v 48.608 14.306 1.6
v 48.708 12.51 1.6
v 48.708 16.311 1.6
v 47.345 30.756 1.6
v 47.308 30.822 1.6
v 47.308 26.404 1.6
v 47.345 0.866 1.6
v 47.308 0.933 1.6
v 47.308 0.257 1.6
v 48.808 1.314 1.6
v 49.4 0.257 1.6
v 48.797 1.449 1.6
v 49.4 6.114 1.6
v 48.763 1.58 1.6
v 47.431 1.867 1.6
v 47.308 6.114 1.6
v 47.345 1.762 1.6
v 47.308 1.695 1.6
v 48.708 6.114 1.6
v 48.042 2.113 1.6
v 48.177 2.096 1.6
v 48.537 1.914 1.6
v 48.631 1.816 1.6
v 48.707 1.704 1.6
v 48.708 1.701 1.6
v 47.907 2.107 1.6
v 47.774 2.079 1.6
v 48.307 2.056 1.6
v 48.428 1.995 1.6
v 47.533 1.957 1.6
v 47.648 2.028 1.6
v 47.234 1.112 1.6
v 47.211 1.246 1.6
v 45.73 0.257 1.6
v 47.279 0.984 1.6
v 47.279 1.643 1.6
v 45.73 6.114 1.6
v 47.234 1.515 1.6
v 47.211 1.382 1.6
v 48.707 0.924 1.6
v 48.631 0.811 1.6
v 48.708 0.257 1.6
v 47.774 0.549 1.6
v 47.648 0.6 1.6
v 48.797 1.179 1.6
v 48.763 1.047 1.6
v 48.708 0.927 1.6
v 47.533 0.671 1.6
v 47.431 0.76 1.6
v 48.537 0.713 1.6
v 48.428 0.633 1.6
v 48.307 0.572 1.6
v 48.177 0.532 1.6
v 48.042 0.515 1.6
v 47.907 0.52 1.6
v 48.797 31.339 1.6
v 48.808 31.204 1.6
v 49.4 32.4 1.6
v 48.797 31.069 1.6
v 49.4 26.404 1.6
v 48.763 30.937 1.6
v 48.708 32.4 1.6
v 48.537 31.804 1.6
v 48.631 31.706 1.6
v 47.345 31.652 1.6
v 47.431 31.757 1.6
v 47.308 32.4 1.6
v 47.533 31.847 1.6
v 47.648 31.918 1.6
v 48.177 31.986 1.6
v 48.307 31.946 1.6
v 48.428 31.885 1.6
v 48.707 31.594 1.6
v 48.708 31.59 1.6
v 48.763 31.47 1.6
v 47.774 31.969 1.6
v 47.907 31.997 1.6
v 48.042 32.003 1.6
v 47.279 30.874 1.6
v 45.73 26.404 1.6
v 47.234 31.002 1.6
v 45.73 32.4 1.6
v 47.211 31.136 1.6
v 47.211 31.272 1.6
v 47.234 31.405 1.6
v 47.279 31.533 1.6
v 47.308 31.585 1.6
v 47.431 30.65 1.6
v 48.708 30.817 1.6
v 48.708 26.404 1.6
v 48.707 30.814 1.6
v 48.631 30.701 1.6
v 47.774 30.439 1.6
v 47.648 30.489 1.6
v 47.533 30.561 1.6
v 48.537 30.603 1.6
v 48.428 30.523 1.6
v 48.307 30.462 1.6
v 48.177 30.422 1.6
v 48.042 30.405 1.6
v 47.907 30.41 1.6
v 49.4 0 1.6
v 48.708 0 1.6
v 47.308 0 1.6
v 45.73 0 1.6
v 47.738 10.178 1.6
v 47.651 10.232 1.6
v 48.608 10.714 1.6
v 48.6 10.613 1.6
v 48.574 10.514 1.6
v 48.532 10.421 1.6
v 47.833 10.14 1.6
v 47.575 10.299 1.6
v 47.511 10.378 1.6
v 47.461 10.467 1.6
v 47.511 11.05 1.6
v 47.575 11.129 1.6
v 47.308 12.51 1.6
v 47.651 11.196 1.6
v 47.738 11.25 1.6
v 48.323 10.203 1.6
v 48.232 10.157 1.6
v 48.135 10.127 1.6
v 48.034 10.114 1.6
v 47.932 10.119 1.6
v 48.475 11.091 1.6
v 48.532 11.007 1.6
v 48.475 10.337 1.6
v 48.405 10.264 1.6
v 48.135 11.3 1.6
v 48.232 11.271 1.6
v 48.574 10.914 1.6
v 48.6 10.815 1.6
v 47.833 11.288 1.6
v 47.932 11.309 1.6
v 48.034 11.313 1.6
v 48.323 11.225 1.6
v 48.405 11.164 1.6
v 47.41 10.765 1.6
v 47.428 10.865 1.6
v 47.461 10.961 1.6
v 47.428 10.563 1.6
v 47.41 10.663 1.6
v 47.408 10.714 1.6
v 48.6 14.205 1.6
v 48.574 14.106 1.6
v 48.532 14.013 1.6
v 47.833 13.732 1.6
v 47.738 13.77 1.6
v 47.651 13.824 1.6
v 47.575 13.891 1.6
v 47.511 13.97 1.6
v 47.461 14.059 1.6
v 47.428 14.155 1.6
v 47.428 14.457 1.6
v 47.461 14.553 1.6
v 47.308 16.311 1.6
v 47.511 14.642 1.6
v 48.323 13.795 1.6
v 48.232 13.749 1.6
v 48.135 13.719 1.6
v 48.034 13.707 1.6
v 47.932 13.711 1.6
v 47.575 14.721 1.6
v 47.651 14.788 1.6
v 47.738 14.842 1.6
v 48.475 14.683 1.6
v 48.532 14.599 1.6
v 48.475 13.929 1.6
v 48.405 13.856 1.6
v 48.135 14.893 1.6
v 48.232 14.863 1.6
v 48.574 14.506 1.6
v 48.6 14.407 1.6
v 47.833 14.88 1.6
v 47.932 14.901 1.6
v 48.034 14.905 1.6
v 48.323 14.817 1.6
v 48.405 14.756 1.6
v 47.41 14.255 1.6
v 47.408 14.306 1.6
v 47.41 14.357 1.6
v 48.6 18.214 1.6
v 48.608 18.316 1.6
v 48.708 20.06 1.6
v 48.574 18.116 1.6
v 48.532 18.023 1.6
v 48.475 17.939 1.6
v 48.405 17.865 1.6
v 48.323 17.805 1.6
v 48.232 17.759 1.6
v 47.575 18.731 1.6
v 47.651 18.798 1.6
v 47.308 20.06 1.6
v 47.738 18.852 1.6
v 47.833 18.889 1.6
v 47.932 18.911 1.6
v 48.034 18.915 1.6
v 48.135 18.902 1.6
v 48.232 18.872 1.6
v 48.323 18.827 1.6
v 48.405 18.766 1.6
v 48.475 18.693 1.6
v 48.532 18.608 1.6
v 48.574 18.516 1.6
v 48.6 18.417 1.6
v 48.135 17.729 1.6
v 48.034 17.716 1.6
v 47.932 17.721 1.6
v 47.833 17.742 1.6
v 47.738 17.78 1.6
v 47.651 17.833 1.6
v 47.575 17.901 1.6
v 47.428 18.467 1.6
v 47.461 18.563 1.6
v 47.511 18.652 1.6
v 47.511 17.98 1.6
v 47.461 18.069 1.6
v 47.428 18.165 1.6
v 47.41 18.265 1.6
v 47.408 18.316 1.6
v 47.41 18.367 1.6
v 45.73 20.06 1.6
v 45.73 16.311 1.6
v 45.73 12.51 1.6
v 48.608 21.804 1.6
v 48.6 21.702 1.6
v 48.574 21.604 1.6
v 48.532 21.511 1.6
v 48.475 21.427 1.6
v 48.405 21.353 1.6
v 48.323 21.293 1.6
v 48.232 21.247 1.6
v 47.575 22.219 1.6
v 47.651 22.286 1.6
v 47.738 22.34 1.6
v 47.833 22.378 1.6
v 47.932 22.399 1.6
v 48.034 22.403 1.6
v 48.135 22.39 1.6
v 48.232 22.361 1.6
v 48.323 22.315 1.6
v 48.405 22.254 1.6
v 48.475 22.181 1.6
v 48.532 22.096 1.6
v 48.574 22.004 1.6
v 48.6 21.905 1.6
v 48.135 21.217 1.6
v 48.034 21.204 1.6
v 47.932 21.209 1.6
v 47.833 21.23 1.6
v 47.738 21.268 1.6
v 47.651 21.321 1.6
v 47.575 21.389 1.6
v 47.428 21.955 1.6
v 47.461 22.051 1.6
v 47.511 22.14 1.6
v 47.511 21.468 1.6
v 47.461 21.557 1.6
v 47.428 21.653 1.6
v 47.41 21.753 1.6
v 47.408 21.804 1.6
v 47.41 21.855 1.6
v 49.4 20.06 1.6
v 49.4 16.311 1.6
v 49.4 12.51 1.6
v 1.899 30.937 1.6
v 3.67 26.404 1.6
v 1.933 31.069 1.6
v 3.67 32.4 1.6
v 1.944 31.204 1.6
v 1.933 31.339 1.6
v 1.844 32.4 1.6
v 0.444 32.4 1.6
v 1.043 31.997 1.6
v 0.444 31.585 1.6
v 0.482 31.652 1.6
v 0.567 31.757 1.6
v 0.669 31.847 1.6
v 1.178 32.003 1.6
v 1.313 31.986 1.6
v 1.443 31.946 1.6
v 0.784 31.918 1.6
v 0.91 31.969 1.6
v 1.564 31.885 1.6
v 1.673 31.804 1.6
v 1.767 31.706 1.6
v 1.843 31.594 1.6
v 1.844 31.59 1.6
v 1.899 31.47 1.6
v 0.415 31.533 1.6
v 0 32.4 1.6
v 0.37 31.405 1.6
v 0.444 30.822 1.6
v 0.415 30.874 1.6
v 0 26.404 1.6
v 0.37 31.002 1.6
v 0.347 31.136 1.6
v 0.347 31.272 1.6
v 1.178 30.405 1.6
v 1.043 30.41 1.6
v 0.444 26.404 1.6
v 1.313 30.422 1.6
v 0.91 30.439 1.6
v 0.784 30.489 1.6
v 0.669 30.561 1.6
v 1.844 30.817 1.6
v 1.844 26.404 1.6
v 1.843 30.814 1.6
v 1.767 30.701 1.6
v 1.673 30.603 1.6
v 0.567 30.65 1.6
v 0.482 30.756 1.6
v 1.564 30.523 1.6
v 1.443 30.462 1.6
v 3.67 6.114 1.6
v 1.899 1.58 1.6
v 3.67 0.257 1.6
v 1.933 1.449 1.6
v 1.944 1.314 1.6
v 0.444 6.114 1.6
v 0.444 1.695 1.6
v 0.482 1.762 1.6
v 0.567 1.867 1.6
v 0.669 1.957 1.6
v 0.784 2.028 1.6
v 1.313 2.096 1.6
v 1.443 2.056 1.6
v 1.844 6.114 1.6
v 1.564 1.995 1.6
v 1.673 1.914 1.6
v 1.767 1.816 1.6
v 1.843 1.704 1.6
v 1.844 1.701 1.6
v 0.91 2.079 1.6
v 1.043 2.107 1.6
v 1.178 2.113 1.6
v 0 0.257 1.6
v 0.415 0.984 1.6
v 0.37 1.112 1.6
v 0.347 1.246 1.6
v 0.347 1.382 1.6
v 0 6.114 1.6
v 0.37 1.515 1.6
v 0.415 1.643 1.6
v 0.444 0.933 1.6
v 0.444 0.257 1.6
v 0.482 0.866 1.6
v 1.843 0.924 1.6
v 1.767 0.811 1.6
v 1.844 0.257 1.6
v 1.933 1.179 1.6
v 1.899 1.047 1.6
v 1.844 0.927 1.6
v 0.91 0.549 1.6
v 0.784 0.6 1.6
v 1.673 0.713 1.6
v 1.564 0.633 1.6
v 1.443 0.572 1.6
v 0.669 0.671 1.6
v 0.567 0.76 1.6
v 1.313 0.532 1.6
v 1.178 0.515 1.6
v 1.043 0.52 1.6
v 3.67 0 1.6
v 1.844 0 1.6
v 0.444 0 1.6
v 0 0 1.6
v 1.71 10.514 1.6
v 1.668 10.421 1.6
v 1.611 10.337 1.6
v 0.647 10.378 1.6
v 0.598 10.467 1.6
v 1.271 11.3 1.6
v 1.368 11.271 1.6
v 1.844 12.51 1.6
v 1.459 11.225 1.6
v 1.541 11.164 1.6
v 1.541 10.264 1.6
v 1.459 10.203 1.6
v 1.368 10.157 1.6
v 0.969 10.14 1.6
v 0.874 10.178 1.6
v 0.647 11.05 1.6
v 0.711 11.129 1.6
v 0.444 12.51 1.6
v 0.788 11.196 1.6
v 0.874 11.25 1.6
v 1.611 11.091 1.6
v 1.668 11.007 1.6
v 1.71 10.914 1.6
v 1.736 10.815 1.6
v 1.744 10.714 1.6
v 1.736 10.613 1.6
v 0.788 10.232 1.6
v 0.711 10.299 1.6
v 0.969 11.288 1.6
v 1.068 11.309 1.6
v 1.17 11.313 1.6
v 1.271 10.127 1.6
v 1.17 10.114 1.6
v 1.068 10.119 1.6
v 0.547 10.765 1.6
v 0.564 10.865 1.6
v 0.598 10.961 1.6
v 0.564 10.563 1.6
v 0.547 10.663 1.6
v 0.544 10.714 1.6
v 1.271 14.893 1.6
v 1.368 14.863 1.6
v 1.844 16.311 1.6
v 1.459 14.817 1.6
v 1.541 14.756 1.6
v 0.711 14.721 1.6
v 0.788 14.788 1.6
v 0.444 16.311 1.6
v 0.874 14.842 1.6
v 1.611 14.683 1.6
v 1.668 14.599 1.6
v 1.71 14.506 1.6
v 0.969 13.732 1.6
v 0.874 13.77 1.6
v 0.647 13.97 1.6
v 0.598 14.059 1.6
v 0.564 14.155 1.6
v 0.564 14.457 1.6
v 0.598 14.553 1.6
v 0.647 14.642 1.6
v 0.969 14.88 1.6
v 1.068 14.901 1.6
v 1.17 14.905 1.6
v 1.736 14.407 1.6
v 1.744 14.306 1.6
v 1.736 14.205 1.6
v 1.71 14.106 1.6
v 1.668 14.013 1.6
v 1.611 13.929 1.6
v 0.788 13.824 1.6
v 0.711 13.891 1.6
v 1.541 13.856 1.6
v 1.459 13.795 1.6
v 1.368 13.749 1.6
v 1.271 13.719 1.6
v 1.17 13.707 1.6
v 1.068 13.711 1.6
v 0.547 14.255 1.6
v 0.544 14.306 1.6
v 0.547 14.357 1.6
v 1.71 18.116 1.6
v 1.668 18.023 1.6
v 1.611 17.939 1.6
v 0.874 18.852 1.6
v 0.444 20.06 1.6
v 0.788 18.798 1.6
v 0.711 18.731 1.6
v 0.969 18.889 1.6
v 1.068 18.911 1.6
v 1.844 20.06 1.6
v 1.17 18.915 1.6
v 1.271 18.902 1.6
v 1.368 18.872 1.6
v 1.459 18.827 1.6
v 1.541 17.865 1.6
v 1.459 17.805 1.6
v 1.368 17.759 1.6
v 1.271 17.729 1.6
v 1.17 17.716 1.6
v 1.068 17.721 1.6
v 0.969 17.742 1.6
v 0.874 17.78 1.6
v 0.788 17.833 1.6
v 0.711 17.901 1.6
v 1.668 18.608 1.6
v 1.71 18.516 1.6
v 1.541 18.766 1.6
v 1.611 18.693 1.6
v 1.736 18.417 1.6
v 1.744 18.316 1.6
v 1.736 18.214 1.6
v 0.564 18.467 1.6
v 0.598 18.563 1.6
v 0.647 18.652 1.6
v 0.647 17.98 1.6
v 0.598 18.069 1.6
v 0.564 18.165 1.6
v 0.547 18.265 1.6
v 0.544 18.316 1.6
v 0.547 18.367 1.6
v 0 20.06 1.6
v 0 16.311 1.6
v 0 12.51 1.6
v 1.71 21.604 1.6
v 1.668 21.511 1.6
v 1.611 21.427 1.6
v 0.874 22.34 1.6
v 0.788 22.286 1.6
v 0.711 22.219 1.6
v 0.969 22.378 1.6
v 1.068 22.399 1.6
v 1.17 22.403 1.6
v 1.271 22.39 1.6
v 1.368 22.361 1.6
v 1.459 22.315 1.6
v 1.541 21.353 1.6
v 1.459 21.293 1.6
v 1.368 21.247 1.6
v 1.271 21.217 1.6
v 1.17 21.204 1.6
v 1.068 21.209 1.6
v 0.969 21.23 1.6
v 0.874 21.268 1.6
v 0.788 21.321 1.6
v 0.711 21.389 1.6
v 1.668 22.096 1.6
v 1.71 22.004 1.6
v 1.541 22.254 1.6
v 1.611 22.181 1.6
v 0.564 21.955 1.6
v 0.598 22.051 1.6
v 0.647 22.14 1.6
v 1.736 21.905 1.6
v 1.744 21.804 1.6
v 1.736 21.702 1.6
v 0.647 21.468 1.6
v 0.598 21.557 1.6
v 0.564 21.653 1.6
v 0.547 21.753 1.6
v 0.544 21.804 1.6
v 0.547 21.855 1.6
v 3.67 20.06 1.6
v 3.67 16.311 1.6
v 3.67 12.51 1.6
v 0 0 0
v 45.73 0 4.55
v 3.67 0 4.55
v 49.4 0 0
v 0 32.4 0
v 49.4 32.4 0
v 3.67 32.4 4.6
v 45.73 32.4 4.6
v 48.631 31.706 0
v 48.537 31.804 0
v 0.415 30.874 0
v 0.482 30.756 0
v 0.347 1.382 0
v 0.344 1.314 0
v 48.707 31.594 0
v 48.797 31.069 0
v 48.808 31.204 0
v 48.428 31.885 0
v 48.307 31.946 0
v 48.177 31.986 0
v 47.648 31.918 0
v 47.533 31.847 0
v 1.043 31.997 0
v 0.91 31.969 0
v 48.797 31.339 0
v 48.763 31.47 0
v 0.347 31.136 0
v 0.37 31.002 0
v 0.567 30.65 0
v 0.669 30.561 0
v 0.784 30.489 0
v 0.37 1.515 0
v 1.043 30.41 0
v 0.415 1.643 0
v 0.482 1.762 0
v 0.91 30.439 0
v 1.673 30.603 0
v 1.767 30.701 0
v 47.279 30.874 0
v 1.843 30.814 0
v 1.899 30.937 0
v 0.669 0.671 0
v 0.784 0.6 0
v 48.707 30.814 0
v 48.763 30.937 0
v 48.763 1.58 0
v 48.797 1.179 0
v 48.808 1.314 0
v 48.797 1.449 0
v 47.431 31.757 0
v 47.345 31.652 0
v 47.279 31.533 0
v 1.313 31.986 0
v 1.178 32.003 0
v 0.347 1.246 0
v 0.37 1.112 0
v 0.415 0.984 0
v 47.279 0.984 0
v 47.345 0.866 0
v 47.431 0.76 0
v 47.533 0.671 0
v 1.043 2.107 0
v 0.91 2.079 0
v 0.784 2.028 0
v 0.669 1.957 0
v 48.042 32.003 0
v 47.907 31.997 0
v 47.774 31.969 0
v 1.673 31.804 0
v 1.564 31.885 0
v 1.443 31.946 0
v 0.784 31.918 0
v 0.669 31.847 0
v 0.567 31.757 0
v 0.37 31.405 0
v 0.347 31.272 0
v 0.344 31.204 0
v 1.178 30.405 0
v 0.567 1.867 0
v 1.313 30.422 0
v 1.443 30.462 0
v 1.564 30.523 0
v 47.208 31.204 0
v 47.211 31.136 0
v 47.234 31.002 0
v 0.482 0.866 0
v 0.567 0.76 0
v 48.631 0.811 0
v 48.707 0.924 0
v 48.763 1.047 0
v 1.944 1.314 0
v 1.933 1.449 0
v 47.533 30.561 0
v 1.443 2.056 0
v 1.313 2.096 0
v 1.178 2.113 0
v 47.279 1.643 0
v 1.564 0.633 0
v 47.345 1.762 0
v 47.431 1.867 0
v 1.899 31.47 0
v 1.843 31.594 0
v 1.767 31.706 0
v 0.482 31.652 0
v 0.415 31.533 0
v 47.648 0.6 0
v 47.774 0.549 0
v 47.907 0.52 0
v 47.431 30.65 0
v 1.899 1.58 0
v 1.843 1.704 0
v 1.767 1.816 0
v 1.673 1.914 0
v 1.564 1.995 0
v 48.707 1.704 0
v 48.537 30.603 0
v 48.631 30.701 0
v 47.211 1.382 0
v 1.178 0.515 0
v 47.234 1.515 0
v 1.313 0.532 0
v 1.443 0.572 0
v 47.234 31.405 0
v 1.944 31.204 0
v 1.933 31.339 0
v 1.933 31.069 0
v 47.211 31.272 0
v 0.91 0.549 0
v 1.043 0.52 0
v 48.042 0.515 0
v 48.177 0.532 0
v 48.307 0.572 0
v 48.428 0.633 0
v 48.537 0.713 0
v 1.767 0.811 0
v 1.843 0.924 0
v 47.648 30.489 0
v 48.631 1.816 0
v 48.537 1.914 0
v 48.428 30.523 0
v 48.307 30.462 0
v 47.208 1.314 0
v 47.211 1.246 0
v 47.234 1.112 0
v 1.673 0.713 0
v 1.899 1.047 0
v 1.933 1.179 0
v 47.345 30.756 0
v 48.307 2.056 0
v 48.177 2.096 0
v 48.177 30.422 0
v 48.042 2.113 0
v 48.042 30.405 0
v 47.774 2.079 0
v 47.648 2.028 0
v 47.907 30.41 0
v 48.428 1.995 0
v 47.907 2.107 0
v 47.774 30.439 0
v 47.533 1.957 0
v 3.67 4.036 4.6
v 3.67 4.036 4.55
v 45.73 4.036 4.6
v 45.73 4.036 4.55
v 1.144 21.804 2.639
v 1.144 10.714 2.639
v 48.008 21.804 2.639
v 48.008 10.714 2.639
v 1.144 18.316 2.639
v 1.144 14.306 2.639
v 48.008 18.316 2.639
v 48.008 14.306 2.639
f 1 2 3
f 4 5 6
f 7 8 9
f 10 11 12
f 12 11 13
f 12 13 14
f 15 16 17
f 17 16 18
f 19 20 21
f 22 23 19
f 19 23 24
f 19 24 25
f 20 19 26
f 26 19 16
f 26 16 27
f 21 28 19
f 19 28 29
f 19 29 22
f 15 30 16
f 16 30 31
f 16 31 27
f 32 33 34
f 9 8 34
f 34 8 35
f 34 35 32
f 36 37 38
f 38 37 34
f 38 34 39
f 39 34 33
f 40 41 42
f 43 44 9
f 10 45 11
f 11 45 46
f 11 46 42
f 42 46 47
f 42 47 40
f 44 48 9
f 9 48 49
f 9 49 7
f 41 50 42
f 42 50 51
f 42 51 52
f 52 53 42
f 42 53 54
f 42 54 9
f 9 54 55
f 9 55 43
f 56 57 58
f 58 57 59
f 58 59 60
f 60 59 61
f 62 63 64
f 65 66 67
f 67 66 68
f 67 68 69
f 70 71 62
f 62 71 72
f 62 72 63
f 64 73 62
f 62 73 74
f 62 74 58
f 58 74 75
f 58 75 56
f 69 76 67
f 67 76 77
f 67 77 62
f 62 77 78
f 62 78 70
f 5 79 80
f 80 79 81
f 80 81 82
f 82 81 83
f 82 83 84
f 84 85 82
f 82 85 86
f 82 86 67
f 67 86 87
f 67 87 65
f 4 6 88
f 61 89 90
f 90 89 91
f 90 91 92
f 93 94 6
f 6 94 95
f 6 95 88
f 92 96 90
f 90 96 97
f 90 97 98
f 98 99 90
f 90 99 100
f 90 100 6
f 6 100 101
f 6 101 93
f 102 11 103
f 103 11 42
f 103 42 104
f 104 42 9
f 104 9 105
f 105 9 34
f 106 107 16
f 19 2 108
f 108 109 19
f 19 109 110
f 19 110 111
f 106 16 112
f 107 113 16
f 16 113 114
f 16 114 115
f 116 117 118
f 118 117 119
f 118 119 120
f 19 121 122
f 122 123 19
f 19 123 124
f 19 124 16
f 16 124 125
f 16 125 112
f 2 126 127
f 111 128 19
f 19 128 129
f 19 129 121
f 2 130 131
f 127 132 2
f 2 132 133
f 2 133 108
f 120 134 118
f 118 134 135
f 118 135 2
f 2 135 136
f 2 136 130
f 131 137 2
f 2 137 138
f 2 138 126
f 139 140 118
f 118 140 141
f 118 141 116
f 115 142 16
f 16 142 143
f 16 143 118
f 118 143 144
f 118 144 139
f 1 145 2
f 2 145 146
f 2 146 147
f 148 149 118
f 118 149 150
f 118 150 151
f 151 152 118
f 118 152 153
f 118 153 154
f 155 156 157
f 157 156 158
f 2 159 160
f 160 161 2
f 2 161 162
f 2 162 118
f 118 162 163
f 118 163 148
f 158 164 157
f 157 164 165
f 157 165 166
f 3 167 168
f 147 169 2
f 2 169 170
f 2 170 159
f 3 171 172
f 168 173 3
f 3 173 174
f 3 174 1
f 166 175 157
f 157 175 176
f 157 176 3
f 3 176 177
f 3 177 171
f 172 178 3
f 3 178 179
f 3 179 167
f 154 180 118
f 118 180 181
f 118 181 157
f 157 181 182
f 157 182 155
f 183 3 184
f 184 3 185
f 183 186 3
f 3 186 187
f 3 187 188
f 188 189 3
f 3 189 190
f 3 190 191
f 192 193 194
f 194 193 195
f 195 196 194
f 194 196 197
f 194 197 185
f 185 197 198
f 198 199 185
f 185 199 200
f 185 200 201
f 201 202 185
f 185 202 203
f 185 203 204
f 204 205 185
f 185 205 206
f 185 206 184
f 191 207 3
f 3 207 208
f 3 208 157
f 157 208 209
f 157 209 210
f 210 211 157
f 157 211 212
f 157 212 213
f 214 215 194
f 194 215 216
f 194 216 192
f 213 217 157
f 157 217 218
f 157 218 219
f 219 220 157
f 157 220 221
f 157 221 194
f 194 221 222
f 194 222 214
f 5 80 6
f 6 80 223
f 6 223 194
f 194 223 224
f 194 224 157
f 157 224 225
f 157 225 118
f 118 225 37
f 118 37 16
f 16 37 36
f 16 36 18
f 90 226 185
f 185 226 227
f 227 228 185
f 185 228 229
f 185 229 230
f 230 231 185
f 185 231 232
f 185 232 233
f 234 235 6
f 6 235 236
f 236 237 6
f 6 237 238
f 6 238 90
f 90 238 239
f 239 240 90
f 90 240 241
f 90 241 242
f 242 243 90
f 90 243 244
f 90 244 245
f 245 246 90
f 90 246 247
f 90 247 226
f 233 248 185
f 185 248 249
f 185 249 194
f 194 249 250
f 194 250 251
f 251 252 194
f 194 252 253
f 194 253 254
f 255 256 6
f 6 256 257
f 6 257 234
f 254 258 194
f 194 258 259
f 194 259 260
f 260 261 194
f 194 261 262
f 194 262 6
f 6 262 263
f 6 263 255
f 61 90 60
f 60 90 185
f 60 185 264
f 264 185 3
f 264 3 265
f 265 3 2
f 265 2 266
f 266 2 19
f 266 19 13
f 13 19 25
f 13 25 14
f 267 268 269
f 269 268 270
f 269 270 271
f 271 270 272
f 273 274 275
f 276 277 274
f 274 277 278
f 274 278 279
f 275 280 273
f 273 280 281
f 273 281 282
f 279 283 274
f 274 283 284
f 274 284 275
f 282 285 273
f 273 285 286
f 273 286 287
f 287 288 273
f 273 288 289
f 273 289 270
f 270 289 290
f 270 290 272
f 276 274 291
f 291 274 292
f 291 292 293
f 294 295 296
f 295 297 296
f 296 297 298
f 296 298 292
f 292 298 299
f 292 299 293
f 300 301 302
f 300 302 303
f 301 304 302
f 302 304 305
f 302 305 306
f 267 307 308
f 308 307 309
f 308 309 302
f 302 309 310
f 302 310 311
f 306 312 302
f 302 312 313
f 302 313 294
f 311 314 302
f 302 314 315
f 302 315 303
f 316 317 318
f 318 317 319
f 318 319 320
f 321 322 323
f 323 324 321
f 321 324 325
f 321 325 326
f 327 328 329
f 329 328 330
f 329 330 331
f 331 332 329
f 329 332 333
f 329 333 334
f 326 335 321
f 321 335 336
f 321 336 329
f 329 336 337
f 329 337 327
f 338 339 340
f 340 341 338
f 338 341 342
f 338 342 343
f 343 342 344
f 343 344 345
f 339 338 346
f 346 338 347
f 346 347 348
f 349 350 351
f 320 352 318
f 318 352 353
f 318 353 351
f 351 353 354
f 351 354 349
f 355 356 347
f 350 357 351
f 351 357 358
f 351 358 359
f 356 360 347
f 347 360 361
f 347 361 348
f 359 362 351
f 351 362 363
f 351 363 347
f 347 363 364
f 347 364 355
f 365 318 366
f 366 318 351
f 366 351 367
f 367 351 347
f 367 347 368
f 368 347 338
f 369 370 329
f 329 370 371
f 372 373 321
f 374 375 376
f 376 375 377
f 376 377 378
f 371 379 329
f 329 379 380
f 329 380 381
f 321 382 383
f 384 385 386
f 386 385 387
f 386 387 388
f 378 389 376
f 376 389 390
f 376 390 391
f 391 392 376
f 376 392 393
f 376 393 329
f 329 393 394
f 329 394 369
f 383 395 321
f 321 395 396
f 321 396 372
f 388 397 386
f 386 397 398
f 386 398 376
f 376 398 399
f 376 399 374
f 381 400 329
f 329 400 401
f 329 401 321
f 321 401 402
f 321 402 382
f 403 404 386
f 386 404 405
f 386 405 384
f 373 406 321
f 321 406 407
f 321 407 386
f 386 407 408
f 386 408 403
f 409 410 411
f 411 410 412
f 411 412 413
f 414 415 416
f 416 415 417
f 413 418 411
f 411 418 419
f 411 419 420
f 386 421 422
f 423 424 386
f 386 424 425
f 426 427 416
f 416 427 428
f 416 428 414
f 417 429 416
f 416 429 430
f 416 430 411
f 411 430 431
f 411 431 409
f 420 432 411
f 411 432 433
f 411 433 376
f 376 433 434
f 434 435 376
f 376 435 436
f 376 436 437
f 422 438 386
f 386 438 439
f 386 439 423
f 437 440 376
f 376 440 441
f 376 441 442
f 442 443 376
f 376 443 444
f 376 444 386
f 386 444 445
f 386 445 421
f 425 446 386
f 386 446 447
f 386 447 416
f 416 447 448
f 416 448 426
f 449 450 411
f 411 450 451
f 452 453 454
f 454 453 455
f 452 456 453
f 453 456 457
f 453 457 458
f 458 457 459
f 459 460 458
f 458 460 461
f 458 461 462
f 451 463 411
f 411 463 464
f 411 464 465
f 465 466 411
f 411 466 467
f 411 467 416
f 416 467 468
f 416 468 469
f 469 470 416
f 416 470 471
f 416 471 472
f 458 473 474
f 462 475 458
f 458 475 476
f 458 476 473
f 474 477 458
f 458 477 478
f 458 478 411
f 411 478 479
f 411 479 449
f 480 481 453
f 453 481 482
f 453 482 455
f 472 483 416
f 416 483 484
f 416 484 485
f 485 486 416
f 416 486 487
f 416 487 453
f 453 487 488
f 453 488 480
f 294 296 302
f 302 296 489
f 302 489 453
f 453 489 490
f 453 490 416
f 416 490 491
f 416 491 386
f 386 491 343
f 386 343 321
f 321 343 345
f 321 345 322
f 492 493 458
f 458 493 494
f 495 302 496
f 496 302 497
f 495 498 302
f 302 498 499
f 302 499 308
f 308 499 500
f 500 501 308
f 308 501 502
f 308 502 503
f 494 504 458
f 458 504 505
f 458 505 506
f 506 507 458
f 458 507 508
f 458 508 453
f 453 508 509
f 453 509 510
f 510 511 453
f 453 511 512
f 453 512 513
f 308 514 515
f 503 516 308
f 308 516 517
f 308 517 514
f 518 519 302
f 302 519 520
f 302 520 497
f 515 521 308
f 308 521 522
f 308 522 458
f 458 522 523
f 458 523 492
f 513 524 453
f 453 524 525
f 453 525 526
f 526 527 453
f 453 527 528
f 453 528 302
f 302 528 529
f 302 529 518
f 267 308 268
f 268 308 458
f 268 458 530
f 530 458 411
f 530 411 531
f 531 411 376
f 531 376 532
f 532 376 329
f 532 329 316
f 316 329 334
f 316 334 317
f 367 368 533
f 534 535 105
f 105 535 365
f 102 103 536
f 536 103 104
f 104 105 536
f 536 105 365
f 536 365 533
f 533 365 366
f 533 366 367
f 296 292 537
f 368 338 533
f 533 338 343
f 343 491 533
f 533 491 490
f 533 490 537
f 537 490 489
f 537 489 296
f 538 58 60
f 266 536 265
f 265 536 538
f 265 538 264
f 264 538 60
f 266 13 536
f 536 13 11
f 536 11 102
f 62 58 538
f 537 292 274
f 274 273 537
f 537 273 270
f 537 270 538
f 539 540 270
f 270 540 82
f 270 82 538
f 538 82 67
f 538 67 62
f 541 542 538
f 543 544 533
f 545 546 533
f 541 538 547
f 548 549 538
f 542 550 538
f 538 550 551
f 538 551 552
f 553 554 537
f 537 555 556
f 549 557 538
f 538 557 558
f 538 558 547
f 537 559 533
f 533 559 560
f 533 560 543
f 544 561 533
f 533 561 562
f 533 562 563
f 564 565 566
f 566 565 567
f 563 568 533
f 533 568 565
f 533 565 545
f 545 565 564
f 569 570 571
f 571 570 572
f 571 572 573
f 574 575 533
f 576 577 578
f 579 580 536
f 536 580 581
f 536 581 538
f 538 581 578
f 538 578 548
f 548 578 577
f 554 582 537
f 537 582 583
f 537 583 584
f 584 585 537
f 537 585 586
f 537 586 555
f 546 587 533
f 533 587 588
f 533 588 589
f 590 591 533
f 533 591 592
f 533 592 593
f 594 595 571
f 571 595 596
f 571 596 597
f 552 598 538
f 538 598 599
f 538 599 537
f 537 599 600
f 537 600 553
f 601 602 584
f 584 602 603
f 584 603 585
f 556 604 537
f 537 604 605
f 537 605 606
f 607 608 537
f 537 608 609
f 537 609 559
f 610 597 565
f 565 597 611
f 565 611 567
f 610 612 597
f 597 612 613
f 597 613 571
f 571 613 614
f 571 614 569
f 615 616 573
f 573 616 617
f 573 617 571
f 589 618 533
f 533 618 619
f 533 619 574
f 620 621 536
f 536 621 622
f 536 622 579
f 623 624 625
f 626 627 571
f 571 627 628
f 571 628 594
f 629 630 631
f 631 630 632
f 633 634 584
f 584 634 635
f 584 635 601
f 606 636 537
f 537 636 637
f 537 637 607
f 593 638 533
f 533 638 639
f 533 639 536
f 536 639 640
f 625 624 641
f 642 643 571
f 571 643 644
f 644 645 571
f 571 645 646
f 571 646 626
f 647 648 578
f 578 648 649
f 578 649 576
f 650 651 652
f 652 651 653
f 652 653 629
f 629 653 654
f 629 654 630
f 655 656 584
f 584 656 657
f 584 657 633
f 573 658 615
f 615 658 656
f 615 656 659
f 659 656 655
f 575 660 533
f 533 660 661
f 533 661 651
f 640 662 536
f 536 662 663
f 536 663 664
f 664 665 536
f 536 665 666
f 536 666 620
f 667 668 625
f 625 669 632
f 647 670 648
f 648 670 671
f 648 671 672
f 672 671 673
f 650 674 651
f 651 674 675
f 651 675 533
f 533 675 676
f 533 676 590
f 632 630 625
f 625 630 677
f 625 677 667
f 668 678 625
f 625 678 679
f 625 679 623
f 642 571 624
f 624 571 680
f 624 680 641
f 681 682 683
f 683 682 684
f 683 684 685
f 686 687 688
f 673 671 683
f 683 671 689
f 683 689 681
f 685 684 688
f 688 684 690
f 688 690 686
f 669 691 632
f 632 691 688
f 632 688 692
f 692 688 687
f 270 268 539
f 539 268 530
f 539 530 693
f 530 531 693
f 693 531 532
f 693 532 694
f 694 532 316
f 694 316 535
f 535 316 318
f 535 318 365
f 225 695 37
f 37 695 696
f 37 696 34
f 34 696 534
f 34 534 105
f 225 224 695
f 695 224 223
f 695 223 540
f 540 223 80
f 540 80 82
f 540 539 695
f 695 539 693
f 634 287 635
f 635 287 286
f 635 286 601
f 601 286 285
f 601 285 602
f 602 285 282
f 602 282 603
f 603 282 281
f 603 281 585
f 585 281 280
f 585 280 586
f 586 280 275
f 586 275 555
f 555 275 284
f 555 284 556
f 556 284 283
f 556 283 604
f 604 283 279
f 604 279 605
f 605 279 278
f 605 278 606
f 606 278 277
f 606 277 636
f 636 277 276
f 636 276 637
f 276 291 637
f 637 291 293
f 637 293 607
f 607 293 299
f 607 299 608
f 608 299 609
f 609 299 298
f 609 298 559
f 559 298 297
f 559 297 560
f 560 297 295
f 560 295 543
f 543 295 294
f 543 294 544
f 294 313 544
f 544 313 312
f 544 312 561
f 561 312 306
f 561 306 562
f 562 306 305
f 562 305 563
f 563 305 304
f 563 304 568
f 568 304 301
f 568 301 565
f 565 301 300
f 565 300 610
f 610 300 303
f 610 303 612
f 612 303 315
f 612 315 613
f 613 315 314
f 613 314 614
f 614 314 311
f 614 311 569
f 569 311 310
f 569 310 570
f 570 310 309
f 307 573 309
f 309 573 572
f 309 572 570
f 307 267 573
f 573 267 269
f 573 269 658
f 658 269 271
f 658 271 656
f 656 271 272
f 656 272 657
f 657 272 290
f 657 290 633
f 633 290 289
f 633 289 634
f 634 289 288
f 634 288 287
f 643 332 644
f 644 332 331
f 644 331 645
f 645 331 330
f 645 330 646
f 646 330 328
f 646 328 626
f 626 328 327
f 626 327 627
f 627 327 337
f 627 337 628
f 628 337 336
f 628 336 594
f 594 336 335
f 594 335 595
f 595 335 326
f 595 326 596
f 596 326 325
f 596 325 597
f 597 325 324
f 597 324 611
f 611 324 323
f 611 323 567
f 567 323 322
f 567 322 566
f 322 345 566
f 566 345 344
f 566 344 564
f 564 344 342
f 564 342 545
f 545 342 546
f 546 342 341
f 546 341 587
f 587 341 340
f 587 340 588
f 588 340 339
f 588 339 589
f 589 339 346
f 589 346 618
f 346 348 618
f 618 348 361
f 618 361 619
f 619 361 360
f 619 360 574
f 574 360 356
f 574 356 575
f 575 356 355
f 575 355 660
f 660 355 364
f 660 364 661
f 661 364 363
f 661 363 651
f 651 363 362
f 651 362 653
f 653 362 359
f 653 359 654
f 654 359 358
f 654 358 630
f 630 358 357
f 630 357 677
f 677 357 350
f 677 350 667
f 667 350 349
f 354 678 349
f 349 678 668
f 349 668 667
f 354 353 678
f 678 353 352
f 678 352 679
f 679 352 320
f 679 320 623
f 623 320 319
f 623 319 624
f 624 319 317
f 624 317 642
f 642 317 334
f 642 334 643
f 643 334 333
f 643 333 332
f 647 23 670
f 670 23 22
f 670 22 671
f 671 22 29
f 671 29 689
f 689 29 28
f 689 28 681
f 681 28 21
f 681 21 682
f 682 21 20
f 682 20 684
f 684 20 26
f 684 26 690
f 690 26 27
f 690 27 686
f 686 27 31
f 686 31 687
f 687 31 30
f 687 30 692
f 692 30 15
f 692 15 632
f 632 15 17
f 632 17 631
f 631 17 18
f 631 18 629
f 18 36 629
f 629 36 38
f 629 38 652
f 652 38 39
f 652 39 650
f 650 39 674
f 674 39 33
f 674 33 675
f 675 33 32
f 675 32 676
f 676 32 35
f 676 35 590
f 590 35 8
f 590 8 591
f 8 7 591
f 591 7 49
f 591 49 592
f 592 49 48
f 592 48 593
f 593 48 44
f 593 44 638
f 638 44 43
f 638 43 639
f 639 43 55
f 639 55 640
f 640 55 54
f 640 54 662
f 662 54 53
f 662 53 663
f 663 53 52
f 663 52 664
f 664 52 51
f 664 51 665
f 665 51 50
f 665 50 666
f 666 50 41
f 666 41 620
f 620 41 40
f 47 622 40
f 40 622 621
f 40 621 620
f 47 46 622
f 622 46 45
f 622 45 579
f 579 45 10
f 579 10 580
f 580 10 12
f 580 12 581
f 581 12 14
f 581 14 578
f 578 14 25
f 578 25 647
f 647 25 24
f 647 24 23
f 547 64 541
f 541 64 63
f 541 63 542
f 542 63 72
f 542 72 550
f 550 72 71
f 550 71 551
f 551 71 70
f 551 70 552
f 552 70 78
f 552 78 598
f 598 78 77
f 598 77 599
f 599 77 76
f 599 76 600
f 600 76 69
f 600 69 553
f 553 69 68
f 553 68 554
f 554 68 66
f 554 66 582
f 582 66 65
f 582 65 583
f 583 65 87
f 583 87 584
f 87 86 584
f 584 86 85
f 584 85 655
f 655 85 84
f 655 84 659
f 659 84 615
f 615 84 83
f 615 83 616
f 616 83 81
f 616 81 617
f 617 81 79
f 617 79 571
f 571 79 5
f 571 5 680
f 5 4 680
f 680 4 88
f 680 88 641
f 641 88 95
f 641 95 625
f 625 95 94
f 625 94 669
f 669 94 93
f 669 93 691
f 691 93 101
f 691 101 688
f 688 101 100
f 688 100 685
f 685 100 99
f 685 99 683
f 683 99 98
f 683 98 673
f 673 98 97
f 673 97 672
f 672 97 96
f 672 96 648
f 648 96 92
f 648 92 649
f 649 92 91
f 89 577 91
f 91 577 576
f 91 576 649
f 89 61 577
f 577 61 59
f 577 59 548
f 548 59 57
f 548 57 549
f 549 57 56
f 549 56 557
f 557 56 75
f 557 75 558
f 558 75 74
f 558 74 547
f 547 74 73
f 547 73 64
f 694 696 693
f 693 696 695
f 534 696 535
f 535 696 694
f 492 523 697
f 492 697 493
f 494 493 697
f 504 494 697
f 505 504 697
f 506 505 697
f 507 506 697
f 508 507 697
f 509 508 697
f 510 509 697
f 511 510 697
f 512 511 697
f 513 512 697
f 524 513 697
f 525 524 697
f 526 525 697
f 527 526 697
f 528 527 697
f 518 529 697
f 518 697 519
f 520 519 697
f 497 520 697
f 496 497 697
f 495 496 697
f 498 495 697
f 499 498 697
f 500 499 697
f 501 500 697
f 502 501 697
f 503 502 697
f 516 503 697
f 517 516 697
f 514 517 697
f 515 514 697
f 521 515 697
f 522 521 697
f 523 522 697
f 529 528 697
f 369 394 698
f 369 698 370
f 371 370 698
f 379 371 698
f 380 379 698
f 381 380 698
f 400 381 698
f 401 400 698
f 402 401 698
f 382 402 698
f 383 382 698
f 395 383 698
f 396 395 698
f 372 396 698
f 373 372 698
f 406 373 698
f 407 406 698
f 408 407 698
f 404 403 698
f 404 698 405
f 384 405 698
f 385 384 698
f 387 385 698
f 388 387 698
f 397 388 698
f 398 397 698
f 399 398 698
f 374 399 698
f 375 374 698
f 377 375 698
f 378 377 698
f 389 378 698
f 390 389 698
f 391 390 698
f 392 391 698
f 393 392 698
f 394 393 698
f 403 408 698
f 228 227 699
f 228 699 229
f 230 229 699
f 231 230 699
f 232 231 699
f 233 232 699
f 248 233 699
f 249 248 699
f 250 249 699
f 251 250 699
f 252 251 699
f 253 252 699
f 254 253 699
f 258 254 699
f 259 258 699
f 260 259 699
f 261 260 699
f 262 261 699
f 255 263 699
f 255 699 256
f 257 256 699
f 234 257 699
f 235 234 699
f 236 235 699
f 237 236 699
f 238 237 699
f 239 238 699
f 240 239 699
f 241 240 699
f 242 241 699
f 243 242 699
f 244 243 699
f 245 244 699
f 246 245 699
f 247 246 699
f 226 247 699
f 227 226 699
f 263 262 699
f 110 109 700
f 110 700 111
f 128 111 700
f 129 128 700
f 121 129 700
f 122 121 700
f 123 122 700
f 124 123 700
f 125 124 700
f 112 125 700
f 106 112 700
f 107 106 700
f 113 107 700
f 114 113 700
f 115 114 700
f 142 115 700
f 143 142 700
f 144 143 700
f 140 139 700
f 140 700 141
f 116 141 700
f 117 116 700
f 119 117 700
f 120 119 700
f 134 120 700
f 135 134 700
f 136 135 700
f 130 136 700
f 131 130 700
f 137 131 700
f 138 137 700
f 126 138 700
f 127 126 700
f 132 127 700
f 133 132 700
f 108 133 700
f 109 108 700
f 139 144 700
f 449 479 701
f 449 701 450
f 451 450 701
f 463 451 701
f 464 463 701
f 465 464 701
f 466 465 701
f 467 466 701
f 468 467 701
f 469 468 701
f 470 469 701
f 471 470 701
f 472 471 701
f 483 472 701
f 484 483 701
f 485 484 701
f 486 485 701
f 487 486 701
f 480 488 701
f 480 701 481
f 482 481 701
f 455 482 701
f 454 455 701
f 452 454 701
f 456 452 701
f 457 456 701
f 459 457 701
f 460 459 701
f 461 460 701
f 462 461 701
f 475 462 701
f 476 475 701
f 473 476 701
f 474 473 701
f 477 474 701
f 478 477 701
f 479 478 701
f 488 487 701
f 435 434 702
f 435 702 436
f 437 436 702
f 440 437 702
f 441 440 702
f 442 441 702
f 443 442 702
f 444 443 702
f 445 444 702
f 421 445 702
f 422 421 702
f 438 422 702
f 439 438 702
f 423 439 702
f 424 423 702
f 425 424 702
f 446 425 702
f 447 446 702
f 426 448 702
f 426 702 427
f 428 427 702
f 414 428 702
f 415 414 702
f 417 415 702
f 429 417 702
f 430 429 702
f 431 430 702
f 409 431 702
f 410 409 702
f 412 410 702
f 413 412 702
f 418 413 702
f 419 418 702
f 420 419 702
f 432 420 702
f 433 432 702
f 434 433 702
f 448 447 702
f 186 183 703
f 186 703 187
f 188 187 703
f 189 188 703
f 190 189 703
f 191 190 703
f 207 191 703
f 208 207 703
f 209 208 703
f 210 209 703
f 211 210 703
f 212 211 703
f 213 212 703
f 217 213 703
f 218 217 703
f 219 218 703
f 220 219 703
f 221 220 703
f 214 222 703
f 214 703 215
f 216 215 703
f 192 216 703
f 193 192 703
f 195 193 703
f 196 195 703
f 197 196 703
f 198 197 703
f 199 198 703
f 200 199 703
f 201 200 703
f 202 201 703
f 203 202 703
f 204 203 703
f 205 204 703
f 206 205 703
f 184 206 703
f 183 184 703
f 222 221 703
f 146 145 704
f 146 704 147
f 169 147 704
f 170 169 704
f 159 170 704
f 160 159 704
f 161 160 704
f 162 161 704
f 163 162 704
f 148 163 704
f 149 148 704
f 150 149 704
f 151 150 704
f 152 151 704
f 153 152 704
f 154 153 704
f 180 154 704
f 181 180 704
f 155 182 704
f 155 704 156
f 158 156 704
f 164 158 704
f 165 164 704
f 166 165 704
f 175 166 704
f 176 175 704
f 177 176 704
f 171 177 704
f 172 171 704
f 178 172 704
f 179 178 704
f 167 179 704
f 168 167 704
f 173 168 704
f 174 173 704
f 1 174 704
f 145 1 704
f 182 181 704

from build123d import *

# Parameters (mm, degrees)
ESQUISSE1_W             = 49.4
ESQUISSE1_H             = 32.4
BOSS_EXTRU_1_DEPTH      = 1.6
ESQUISSE5_W             = 42.06
ESQUISSE5_H             = 32.4
BOSS_EXTRU_2_DEPTH      = 3
ESQUISSE6_R             = 0.8
ENL_V_MAT_EXTRU_1_DEPTH = 3
ESQUISSE7_W             = 42.06
ESQUISSE7_H             = 4.035624865
ENL_V_MAT_EXTRU_2_DEPTH = 0.05
ESQUISSE8_R             = 0.6
BOSS_EXTRU_3_DEPTH      = 1.2
BOSS_EXTRU_3_TAPER      = 30


with BuildPart() as part:
    # Esquisse1 → Boss.-Extru.1 (new body)
    with BuildSketch(Plane.XY):
        with Locations((24.7, 16.2)):
            Rectangle(ESQUISSE1_W, ESQUISSE1_H)
    extrude(amount=BOSS_EXTRU_1_DEPTH)

    # Esquisse5 → Boss.-Extru.2 (add)
    with BuildSketch(Plane.XY.offset(1.6)):
        with Locations((24.7, 16.2)):
            Rectangle(ESQUISSE5_W, ESQUISSE5_H)
    extrude(amount=BOSS_EXTRU_2_DEPTH)

    # Esquisse6 → Enlèv. mat.-Extru.1 (cut)
    with BuildSketch(Plane.XY.offset(1.6)):
        with Locations((1.144377661, 31.203769118)):
            Circle(ESQUISSE6_R)
        with Locations((1.144377661, 1.31386178)):
            Circle(ESQUISSE6_R)
        with Locations((48.008189331, 1.31386178)):
            Circle(ESQUISSE6_R)
        with Locations((48.008189331, 31.203769118)):
            Circle(ESQUISSE6_R)
    extrude(amount=-ENL_V_MAT_EXTRU_1_DEPTH, mode=Mode.SUBTRACT)

    # Esquisse7 → Enlèv. mat.-Extru.2 (cut)
    with BuildSketch(Plane.XY.offset(4.6)):
        with Locations((24.7, 2.017812432)):
            Rectangle(ESQUISSE7_W, ESQUISSE7_H)
    extrude(amount=-ENL_V_MAT_EXTRU_2_DEPTH, mode=Mode.SUBTRACT)

    # Esquisse8 → Boss.-Extru.3 (add)
    with BuildSketch(Plane.XY.offset(1.6)):
        with Locations((1.144377661, 21.803769118)):
            Circle(ESQUISSE8_R)
        with Locations((1.144377661, 10.71386178)):
            Circle(ESQUISSE8_R)
        with Locations((48.008189331, 21.803769118)):
            Circle(ESQUISSE8_R)
        with Locations((48.008189331, 10.71386178)):
            Circle(ESQUISSE8_R)
        with Locations((1.144377661, 18.315710158)):
            Circle(ESQUISSE8_R)
        with Locations((1.144377661, 14.305919008)):
            Circle(ESQUISSE8_R)
        with Locations((48.008189331, 18.315710158)):
            Circle(ESQUISSE8_R)
        with Locations((48.008189331, 14.305919008)):
            Circle(ESQUISSE8_R)
    extrude(amount=BOSS_EXTRU_3_DEPTH, taper=BOSS_EXTRU_3_TAPER)


solid = part.part
